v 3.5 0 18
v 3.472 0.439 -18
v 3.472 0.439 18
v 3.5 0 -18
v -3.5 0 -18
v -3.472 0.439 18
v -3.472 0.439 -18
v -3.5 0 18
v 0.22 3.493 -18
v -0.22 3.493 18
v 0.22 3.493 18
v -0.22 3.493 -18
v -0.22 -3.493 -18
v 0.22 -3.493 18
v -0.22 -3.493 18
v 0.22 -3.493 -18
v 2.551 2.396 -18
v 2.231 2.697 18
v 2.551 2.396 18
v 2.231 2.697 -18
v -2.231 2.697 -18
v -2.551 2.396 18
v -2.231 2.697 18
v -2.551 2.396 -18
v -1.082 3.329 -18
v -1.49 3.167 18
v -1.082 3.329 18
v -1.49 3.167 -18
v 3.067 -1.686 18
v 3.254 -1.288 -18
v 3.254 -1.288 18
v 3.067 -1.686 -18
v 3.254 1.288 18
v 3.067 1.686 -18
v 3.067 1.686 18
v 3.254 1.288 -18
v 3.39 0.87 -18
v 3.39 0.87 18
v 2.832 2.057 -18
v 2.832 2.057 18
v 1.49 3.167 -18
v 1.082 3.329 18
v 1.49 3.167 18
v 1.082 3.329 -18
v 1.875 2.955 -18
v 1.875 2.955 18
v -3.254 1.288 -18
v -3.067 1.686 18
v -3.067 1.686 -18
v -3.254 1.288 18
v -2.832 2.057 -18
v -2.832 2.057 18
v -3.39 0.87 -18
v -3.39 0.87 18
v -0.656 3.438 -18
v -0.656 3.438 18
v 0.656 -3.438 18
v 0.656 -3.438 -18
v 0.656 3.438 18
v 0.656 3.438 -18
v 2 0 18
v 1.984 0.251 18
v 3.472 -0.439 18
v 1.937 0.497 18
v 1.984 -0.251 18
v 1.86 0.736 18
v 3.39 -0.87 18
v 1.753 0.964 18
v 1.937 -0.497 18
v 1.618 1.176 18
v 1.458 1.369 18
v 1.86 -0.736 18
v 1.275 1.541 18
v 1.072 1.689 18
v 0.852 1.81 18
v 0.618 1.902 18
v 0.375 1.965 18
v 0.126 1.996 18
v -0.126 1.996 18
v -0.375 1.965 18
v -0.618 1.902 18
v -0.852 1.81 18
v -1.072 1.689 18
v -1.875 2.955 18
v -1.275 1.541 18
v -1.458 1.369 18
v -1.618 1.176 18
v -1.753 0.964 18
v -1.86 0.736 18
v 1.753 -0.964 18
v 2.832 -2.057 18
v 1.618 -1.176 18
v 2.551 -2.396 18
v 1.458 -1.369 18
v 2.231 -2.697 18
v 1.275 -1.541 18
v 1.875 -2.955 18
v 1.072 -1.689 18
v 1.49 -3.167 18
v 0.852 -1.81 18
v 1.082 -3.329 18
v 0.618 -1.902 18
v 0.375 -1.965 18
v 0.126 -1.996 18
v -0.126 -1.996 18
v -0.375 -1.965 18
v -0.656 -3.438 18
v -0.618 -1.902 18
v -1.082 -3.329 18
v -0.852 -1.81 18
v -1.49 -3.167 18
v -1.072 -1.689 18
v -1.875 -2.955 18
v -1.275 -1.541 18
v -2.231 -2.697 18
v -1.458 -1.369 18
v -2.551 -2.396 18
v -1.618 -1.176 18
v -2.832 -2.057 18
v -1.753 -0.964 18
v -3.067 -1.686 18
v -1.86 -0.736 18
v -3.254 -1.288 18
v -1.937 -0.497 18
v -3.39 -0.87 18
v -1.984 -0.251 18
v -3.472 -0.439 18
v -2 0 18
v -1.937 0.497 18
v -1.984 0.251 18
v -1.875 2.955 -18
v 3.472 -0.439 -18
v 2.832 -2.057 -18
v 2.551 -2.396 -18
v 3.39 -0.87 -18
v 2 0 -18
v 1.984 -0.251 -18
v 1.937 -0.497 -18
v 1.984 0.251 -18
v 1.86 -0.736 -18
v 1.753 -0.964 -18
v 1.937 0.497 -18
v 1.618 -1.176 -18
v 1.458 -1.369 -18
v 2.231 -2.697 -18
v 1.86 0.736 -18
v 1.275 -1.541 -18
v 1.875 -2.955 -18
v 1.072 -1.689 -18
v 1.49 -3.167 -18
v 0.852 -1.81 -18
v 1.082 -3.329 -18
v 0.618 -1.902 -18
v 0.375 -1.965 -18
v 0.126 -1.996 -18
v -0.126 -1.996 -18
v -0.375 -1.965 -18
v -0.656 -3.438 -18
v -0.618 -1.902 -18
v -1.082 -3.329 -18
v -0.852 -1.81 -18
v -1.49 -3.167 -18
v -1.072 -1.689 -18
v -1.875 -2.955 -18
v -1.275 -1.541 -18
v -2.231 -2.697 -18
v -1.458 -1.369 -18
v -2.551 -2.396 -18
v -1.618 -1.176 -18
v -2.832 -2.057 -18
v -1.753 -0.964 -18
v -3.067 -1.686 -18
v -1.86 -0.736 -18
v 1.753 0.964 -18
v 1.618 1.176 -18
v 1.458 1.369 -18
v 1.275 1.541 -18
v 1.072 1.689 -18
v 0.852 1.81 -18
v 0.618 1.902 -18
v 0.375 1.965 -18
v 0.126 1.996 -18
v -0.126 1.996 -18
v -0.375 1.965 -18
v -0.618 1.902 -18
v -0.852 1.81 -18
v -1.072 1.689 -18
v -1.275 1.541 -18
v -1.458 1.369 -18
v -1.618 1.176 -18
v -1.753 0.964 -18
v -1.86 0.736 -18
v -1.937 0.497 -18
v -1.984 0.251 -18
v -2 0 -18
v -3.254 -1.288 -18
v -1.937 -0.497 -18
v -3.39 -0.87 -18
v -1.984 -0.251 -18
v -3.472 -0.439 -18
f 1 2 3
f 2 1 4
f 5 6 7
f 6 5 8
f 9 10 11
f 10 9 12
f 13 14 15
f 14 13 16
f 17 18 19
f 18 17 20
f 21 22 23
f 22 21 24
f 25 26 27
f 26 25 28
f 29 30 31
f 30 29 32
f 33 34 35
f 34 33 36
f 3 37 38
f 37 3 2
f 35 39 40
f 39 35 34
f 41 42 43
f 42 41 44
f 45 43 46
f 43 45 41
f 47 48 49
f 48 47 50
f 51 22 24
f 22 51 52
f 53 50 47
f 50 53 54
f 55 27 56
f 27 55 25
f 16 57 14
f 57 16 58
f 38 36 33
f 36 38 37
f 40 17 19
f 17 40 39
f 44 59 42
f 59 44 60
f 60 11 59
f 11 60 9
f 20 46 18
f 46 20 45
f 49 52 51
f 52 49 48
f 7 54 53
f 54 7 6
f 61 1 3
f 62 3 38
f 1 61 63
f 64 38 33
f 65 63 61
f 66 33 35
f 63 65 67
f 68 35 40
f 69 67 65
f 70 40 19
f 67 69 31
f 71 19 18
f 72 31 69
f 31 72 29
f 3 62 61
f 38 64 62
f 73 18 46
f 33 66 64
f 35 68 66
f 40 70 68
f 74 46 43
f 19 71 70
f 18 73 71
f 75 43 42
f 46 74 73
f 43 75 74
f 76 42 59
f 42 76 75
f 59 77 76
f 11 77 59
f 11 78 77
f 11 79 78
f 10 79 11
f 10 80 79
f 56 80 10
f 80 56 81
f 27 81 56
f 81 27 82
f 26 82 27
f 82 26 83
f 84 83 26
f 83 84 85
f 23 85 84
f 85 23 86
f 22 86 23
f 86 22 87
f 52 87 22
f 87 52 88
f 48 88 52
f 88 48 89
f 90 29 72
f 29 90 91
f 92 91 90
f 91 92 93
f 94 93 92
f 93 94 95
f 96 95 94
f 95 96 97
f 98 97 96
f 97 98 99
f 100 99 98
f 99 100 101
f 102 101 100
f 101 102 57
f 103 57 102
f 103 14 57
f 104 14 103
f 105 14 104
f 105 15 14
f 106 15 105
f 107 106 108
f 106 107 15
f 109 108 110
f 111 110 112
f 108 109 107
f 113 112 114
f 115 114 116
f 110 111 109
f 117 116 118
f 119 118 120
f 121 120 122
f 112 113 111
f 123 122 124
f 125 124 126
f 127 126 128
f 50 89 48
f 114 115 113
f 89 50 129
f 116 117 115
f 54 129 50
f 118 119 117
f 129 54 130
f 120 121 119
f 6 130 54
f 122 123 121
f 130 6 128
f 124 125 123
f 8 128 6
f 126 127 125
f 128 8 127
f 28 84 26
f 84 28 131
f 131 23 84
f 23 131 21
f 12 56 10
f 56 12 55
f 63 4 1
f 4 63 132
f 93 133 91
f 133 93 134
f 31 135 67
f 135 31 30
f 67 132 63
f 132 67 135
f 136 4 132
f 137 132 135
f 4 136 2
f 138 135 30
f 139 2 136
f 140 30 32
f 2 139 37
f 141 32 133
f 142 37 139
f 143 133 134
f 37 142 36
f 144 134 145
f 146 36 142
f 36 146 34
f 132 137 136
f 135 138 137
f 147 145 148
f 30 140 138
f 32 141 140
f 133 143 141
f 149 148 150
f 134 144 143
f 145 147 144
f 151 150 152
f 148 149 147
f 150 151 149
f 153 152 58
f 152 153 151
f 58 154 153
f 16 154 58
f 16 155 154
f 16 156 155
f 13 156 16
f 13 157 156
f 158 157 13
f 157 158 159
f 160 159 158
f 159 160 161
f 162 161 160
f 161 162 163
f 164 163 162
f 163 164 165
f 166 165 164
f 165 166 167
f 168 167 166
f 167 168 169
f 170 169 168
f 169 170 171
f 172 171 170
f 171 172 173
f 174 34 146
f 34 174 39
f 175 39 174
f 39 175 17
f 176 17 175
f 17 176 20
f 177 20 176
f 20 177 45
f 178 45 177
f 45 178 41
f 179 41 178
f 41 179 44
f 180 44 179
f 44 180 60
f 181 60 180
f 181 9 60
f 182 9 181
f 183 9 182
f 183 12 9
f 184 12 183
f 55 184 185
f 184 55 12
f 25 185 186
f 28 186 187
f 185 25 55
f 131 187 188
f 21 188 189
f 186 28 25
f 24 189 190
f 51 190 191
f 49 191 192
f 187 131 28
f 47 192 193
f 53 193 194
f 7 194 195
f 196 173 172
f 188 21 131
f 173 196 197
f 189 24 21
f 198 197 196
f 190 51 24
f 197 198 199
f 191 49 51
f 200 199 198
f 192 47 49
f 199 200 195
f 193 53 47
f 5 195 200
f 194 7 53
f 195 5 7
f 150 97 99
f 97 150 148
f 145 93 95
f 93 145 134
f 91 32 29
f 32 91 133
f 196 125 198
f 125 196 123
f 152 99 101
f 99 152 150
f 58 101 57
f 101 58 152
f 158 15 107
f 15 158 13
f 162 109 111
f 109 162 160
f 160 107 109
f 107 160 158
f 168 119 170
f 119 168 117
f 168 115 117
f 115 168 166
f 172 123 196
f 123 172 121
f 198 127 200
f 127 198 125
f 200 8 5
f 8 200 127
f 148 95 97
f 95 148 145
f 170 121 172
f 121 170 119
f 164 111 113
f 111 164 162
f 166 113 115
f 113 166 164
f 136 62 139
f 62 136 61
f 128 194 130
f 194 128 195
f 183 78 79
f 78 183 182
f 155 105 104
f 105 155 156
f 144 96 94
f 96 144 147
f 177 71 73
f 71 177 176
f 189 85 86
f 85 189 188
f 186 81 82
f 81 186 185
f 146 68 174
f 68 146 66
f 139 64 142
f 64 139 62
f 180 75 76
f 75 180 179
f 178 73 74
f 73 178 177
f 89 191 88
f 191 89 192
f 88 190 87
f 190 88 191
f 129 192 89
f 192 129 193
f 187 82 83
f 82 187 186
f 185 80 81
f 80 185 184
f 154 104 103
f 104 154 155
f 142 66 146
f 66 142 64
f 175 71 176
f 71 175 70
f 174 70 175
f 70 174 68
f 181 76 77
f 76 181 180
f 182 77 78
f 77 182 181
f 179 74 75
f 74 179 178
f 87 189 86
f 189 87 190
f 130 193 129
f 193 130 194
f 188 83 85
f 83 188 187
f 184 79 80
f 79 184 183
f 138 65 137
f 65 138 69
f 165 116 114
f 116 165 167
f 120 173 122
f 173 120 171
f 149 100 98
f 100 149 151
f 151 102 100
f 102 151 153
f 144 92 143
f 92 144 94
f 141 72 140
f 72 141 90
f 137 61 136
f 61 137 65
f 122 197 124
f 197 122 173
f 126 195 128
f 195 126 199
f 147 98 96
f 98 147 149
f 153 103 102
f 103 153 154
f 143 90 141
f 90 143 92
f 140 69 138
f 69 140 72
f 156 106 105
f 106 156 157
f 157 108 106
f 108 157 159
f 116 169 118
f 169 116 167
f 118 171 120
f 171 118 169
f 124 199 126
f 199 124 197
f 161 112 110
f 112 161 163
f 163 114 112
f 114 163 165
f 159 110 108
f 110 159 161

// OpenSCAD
$fn = 50;


difference() {
	union() {
		translate(v = [0, 0, -18.0000000000]) {
			cylinder(h = 36, r = 3.5000000000);
		}
	}
	union() {
		translate(v = [0, 0, -100.0000000000]) {
			cylinder(h = 200, r = 2.0000000000);
		}
	}
}
